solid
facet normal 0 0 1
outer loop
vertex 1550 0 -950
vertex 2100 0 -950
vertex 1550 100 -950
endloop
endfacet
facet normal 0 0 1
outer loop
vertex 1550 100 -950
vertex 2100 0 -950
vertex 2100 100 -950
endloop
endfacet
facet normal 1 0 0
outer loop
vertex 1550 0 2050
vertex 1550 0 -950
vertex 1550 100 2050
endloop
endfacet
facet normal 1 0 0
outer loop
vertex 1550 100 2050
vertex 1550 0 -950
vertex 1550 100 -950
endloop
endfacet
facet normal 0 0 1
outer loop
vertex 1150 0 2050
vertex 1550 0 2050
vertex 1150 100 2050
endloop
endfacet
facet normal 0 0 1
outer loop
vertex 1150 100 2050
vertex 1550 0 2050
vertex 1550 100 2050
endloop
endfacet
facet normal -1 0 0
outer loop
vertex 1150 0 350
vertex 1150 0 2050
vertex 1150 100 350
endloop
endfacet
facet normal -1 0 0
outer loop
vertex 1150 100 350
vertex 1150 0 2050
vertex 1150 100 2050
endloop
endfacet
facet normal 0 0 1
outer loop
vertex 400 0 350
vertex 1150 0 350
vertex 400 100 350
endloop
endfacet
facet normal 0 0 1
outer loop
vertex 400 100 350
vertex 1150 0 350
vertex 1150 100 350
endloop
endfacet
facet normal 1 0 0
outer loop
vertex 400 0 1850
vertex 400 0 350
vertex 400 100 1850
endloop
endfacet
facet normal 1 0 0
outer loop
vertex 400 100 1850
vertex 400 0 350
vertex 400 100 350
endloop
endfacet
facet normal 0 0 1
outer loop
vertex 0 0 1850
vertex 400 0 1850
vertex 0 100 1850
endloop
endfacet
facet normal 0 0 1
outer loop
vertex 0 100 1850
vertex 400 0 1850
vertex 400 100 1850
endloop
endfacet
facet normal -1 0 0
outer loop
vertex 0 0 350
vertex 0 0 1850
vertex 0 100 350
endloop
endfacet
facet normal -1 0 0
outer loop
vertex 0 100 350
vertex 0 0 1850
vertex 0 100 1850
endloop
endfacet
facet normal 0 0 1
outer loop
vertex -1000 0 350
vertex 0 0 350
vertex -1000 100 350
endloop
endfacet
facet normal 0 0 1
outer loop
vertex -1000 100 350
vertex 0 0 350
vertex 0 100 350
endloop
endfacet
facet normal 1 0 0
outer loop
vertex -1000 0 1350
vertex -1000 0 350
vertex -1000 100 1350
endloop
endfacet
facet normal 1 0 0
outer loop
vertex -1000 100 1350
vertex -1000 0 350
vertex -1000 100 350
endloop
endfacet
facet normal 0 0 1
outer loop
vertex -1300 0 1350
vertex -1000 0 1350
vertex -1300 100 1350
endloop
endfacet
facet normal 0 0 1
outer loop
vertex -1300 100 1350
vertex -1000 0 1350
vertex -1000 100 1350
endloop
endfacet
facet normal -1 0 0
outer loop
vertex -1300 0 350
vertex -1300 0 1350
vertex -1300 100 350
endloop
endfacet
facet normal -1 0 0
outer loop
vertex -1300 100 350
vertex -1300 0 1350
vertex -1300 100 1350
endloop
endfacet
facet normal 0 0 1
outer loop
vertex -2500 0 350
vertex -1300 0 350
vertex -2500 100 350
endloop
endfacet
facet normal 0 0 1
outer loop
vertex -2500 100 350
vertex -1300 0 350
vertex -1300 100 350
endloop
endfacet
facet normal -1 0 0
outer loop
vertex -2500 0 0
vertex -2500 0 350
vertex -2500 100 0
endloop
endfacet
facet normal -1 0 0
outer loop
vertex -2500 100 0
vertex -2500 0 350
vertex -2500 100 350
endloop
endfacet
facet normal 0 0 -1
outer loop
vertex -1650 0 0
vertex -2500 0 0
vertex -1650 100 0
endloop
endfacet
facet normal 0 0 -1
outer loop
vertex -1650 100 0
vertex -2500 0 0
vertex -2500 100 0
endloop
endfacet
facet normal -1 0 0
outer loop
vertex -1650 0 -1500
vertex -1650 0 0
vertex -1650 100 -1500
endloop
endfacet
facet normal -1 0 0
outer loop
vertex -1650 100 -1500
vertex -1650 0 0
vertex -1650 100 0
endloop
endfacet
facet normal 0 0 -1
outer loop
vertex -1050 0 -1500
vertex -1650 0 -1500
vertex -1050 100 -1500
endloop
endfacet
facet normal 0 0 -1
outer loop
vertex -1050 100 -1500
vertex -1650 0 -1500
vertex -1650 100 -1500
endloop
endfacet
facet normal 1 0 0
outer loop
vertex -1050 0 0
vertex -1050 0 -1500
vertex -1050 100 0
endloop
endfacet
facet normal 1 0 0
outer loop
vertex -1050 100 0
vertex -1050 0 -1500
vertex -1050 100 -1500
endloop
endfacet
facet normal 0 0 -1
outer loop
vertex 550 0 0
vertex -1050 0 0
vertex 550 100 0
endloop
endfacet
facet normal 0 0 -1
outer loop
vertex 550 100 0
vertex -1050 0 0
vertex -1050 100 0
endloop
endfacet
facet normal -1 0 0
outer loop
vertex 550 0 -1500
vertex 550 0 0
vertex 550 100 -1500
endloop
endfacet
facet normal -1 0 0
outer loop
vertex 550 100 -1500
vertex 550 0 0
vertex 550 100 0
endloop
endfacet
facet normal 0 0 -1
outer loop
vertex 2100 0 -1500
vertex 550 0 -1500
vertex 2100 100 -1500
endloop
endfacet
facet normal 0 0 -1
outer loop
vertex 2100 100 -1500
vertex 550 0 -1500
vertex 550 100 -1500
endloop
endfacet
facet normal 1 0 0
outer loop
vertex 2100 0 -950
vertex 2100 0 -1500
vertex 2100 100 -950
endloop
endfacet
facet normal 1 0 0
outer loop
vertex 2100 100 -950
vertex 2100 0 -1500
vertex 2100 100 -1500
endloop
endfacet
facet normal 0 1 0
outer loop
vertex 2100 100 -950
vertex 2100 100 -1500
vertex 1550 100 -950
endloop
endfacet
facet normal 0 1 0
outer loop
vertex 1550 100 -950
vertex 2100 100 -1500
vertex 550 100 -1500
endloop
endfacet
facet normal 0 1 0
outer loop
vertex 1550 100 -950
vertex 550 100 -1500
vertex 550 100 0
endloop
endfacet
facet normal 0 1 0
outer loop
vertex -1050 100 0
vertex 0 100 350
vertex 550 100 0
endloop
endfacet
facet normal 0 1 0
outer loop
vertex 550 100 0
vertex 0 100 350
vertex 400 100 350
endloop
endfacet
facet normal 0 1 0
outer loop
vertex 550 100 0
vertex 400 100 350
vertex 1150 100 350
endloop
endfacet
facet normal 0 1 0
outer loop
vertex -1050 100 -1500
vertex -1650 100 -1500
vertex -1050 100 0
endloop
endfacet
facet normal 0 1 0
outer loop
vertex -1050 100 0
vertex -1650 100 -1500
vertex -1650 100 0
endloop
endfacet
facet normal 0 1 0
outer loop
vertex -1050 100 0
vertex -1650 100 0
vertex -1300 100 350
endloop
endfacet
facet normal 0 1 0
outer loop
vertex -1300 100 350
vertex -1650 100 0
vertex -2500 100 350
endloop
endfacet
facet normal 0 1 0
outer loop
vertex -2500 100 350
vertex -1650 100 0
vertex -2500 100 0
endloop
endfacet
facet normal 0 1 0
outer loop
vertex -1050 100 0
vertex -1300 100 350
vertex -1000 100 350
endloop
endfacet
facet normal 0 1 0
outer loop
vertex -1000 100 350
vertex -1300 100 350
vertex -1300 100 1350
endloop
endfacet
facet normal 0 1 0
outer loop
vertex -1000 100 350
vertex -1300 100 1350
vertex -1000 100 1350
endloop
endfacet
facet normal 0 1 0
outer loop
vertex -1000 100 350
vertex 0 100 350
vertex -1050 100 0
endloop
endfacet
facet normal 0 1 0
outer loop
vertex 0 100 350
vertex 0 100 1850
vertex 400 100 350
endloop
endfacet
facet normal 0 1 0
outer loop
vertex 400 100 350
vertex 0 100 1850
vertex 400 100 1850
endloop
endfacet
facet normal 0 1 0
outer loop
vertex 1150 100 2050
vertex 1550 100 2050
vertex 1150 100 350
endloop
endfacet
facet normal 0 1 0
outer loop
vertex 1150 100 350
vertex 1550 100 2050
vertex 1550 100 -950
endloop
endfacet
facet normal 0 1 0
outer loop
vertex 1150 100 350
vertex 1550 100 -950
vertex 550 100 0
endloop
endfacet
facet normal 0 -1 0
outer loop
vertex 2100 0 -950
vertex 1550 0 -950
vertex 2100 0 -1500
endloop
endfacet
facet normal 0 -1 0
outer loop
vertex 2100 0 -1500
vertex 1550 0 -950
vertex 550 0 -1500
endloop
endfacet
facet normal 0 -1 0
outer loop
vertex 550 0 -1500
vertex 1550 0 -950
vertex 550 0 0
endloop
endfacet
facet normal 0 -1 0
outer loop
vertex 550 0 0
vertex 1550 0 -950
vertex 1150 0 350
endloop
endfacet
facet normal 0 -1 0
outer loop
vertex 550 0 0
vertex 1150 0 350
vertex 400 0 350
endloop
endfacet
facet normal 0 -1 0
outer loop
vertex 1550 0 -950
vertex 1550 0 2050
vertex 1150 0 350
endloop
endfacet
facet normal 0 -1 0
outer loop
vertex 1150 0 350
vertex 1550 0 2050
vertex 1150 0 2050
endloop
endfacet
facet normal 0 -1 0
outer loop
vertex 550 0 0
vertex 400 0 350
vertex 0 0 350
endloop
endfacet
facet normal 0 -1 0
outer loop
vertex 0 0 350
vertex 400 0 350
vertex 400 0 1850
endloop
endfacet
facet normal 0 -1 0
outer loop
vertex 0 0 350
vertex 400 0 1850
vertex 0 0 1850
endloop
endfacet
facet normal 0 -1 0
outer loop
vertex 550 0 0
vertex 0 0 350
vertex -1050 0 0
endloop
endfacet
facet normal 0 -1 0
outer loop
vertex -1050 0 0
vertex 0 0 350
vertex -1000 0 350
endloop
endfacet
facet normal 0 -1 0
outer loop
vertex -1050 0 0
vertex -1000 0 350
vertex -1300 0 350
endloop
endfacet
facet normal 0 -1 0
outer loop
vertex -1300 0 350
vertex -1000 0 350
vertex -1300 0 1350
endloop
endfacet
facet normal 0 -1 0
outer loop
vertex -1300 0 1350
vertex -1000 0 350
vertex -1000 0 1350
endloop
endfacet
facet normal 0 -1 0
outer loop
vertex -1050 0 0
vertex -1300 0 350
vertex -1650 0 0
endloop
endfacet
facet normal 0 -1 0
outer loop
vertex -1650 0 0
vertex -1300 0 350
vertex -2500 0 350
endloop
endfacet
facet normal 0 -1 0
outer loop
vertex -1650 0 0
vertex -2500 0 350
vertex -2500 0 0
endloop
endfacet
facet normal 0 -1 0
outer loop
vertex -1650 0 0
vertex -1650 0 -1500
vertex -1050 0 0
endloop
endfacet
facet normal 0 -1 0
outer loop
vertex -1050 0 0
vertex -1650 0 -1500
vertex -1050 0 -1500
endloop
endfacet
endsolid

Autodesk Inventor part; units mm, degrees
ref_plane "YZ Plane" through (0, 0, 0) normal (1, 0, 0) x (0, 1, 0)
ref_plane "XZ Plane" through (0, 0, 0) normal (0, 1, 0) x (-1, 0, 0)
ref_plane "XY Plane" through (0, 0, 0) normal (0, 0, 1) x (1, 0, 0)
sketch "Sketch1" plane through (0, 0, 0) normal (0, 1, 0) x (-1, 0, 0)
  line L0 (2500, 2500) -> (-2500, 2500)
  line L1 (-2500, 2500) -> (-2500, -2500)
  line L2 (-2500, -2500) -> (2500, -2500)
  line L3 (2500, -2500) -> (2500, 2500)
  line L4 (2500, 2500) -> (-2500, -2500) construction
  line L5 (-2500, 2500) -> (2500, -2500) construction
  line L6 (2500, 350) -> (1300, 350)
  line L7 (1300, 350) -> (1300, 1350)
  line L8 (1300, 1350) -> (1000, 1350)
  line L9 (1000, 1350) -> (1000, 350)
  line L10 (1000, 350) -> (0, 350)
  line L11 (-400, 350) -> (-1150, 350)
  line L12 (-1150, 350) -> (-1150, 2050)
  line L13 (-1150, 2050) -> (-1550, 2050)
  line L14 (-1550, 2050) -> (-1550, -950)
  line L15 (-1550, -950) -> (-2100, -950)
  line L16 (-2100, -950) -> (-2100, -1500)
  line L17 (-2100, -1500) -> (-550, -1500)
  line L18 (-550, -1500) -> (-550, 0)
  line L19 (-550, 0) -> (1050, 0)
  line L20 (1050, 0) -> (1050, -1500)
  line L21 (1050, -1500) -> (1650, -1500)
  line L22 (1650, -1500) -> (1650, 0)
  line L23 (1650, 0) -> (2500, 0)
  line L24 (0, 350) -> (0, 1850)
  line L25 (0, 1850) -> (-400, 1850)
  line L26 (-400, 1850) -> (-400, 350)
  point P0 (0, 0)
  dimension "d0" = 5000
  dimension "d1" = 5000
  dimension "d2" = 1200
  dimension "d3" = 300
  dimension "d4" = 1000
  dimension "d5" = 2500
  dimension "d6" = 350
  dimension "d7" = 850
  dimension "d8" = 600
  dimension "d10" = 1500
  dimension "d12" = 400
  dimension "d13" = 1000
  dimension "d14" = 750
  dimension "d15" = 400
  dimension "d16" = 1700
  dimension "d17" = 400
  dimension "d18" = 3000
  dimension "d19" = 1000
  dimension "d20" = 1600
extrude "Extrusion1" add sketch "Sketch1" along normal blind 100 contours L3 L23 L22 L21 L20 L19 L18 L17 L16 L15 L14 L13 L12 L11 L26 L25 L24 L10 L9 L8 L7 L6
properties part number "medium_obstacle"
